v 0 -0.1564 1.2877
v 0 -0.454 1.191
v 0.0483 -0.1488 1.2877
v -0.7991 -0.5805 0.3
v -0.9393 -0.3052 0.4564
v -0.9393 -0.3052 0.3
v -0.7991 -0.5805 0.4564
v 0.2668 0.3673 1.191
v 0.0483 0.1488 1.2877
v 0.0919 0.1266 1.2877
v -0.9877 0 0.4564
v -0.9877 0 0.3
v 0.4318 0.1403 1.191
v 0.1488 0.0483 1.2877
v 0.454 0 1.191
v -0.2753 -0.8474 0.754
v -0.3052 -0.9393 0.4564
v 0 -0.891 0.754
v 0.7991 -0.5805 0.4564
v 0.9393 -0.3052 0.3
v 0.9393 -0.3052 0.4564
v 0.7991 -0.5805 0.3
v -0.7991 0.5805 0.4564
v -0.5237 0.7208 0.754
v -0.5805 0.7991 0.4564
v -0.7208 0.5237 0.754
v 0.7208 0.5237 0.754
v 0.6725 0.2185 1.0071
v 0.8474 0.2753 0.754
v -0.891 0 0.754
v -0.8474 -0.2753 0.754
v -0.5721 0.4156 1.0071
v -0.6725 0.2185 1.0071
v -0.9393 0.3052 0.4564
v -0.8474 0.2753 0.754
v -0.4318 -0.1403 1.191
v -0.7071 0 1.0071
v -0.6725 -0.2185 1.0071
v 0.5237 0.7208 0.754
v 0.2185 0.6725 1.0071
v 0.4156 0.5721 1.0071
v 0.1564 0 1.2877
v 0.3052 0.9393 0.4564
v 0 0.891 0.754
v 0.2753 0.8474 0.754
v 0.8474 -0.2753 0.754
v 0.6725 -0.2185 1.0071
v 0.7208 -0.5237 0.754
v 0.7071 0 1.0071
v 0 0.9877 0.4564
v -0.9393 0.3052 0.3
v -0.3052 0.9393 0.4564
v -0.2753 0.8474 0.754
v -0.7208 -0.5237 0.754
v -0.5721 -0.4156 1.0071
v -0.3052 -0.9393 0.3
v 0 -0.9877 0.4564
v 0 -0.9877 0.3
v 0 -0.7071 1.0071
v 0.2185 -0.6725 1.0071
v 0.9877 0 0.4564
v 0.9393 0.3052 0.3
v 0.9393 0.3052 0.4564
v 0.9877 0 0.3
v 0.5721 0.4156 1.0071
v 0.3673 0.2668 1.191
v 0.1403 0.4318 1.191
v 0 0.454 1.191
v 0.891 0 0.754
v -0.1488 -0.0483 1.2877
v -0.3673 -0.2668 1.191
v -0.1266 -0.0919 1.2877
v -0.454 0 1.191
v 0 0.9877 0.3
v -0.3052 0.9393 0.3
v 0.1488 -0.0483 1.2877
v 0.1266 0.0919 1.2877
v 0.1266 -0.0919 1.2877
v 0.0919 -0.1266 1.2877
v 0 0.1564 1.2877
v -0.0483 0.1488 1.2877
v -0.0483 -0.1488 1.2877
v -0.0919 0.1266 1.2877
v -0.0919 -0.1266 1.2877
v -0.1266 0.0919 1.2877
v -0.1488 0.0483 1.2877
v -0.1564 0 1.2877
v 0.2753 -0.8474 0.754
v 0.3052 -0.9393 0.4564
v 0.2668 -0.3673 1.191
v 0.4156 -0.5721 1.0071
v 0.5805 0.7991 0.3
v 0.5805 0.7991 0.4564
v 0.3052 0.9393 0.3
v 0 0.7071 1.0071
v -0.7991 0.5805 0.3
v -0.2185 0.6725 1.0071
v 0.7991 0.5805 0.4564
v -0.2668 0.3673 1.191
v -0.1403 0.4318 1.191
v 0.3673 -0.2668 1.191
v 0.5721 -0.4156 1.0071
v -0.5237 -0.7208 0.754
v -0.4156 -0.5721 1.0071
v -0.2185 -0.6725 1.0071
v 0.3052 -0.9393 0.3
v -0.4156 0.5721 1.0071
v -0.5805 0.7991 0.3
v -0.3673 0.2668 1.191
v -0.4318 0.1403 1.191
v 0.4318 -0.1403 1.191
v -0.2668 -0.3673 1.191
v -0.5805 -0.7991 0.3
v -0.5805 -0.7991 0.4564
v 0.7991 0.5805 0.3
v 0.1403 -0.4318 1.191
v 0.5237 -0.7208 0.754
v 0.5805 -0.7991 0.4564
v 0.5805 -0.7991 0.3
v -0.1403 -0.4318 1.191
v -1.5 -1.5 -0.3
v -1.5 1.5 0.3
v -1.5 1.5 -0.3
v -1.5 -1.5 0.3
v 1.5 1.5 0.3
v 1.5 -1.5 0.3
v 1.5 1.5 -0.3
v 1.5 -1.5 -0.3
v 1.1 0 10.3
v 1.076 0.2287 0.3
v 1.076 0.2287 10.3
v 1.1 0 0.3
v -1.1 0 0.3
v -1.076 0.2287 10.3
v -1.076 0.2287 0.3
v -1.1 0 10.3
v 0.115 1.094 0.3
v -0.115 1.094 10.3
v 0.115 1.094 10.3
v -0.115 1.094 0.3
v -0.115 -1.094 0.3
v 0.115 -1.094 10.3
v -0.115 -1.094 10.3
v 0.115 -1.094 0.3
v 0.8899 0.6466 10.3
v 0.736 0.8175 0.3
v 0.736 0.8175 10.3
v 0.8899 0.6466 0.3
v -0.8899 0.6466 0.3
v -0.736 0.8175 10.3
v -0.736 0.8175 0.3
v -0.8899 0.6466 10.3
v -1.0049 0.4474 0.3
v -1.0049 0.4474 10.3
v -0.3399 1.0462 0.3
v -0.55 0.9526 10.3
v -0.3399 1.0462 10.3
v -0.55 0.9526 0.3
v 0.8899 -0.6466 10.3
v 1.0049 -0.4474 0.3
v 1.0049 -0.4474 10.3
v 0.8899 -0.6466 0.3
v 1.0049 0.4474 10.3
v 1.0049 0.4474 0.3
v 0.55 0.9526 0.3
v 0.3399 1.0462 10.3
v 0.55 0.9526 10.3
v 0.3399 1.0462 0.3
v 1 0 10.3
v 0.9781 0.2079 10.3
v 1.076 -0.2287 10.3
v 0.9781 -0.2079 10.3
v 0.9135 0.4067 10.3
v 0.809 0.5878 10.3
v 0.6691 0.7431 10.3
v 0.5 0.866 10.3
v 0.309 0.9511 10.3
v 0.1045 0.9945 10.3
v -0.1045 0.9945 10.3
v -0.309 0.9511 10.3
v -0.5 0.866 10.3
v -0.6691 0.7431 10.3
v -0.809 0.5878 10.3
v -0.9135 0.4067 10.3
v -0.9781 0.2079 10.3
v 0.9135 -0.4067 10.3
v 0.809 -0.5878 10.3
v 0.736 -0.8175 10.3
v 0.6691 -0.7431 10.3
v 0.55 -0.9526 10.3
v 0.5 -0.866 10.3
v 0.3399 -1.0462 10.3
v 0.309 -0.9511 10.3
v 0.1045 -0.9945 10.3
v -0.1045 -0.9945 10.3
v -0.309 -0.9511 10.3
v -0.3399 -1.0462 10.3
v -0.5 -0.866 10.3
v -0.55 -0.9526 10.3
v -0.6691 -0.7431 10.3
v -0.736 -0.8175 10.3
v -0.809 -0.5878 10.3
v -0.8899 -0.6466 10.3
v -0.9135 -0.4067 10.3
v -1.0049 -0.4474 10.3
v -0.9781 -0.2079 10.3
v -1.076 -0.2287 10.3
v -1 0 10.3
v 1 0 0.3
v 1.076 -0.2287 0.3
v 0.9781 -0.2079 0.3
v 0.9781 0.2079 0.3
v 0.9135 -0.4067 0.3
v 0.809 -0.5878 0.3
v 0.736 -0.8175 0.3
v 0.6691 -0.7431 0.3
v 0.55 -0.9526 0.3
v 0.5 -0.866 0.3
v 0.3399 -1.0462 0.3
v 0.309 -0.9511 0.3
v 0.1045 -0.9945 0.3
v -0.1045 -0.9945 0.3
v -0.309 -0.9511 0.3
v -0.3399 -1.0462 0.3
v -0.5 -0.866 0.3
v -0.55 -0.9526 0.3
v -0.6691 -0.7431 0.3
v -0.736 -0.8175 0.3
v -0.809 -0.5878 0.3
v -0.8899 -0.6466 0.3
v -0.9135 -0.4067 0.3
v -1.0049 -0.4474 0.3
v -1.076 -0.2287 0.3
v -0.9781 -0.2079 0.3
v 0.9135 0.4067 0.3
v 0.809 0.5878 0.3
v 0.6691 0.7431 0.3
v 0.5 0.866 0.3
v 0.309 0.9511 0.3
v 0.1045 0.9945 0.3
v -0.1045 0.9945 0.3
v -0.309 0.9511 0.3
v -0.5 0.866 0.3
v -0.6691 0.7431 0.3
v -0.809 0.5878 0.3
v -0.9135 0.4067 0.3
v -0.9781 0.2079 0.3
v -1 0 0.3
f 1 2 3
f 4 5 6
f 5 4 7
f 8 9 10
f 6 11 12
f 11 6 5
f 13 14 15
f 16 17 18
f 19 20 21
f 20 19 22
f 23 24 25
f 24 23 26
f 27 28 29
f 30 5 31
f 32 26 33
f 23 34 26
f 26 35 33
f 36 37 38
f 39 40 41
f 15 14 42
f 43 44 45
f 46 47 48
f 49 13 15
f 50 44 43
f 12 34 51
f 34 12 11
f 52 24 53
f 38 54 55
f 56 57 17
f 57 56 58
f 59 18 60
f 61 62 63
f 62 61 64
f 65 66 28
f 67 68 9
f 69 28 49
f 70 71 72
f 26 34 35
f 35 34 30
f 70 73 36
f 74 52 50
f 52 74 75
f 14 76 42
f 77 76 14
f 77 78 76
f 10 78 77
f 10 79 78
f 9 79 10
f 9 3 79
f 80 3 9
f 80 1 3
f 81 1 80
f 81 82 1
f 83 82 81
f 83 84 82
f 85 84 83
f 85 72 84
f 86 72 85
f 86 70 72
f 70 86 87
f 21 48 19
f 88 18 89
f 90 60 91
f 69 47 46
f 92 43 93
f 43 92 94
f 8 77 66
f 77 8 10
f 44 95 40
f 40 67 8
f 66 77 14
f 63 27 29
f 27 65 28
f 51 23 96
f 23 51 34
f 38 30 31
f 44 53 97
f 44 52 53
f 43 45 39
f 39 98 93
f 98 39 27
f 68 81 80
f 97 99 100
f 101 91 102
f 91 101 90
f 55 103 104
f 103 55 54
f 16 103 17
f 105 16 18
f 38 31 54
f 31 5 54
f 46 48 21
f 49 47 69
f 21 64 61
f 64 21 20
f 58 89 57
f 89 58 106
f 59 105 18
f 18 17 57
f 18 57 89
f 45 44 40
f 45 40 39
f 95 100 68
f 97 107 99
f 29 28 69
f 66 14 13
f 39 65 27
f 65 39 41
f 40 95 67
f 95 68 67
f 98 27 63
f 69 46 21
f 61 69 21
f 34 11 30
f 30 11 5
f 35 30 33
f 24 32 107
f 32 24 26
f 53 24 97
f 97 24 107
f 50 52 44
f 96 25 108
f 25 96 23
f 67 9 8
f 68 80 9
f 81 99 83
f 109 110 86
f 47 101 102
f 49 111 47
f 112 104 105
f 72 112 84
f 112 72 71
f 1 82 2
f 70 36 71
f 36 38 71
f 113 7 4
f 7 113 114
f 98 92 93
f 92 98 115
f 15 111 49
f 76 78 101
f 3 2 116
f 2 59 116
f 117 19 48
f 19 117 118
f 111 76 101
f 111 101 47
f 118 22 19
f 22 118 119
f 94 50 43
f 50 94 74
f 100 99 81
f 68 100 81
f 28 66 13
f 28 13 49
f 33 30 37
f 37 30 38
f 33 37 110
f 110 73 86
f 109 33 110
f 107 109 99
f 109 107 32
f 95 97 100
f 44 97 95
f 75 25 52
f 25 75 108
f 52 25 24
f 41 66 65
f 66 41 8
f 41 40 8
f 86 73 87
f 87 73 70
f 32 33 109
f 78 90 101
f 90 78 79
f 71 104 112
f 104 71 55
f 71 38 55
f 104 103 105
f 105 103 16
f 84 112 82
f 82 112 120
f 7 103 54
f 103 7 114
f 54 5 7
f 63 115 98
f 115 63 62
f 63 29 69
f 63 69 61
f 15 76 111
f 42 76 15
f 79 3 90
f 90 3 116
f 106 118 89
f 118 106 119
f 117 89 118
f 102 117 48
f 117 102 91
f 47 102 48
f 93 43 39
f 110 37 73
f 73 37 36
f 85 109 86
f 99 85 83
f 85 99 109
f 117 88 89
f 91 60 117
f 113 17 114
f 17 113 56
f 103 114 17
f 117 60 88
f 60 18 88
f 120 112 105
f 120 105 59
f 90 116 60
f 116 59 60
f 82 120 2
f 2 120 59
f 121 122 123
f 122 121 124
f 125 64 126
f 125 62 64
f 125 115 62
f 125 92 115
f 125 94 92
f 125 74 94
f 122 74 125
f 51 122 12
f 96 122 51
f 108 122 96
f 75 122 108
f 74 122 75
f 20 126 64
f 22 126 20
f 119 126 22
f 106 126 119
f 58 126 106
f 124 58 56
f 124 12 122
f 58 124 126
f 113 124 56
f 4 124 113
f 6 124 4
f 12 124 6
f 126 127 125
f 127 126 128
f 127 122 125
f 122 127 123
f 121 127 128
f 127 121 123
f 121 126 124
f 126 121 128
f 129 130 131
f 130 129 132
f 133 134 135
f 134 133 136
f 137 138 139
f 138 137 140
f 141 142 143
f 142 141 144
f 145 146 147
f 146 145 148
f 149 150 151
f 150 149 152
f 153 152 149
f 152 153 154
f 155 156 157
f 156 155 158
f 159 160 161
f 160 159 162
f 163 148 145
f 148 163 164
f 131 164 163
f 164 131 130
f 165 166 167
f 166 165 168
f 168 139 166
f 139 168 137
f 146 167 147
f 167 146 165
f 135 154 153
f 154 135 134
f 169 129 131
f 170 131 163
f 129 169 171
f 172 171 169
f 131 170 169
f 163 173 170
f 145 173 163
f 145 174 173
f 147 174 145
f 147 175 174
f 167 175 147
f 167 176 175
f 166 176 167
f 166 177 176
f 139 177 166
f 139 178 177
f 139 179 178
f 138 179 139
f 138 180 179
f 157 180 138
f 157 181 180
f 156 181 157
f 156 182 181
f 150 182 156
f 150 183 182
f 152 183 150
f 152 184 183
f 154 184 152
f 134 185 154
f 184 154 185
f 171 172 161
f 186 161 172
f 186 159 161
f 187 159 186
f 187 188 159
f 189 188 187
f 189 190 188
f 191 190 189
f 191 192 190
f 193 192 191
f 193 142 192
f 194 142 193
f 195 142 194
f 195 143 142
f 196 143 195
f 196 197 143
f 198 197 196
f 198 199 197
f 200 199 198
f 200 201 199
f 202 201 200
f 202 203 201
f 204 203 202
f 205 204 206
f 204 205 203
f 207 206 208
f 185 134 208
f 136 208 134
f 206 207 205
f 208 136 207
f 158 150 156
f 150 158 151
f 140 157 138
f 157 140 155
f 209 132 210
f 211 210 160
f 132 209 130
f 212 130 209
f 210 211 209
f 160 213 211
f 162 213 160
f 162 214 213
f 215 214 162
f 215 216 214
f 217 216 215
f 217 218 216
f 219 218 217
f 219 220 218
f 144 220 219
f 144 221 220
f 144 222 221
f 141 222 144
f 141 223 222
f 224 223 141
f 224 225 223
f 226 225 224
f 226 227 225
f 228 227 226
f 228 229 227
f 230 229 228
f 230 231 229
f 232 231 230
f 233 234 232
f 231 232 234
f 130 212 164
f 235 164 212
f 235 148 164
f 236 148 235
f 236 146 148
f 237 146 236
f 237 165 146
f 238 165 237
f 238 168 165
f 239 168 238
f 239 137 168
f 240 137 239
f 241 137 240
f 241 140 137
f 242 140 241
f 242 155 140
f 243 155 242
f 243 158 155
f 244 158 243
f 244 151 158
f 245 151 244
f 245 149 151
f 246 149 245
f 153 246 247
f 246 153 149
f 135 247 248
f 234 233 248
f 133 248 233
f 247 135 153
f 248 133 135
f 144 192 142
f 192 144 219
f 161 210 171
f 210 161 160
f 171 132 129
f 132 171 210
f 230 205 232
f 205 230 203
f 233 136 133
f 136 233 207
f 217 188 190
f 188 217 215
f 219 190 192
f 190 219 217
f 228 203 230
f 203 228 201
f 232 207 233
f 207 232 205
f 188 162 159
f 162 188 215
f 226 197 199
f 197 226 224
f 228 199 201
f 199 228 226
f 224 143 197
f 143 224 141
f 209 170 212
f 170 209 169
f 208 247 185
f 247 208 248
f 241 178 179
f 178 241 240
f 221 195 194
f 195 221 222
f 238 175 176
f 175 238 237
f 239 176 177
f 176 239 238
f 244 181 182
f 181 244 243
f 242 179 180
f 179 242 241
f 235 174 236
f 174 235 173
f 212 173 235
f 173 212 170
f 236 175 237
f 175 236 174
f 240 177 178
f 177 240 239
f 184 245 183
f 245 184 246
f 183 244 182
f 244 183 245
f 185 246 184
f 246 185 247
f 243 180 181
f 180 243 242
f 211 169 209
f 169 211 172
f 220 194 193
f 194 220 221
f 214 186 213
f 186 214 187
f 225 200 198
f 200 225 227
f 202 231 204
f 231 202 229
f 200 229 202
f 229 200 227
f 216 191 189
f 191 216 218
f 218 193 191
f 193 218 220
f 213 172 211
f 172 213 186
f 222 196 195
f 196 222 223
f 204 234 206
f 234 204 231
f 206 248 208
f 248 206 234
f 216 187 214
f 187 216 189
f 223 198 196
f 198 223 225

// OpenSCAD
// Unit is mm
ledWidth = 3;       // OSRAM Oslon
ledHeight = 3;      // OSRAM Oslon
ledThickness = 0.6; // OSRAM Oslon

tubeInner = 2;
tubeOuter = 2.2;
tubeLength = 10;

union(){
    LED();
    translate([0, 0, ledThickness/2]) tube();
}

module LED() {
  color("red", 0.7){
      cube([ledWidth, ledHeight, ledThickness], center=true);
      difference(){
        translate([0, 0, 0.3])
        sphere(tubeInner/2, $fn=20, $fa=12, $fs=2); 
        translate([0, 0, -tubeInner/2])
        cube([tubeInner, tubeInner, tubeInner], center=true);
     }
   }
}

module tube(){
   difference(){
     $fn = 30; // Number of fragments
     cylinder(tubeLength, tubeOuter/2, tubeOuter/2, center=false);
     cylinder(tubeLength, tubeInner/2, tubeInner/2, center=false);
   }
}
